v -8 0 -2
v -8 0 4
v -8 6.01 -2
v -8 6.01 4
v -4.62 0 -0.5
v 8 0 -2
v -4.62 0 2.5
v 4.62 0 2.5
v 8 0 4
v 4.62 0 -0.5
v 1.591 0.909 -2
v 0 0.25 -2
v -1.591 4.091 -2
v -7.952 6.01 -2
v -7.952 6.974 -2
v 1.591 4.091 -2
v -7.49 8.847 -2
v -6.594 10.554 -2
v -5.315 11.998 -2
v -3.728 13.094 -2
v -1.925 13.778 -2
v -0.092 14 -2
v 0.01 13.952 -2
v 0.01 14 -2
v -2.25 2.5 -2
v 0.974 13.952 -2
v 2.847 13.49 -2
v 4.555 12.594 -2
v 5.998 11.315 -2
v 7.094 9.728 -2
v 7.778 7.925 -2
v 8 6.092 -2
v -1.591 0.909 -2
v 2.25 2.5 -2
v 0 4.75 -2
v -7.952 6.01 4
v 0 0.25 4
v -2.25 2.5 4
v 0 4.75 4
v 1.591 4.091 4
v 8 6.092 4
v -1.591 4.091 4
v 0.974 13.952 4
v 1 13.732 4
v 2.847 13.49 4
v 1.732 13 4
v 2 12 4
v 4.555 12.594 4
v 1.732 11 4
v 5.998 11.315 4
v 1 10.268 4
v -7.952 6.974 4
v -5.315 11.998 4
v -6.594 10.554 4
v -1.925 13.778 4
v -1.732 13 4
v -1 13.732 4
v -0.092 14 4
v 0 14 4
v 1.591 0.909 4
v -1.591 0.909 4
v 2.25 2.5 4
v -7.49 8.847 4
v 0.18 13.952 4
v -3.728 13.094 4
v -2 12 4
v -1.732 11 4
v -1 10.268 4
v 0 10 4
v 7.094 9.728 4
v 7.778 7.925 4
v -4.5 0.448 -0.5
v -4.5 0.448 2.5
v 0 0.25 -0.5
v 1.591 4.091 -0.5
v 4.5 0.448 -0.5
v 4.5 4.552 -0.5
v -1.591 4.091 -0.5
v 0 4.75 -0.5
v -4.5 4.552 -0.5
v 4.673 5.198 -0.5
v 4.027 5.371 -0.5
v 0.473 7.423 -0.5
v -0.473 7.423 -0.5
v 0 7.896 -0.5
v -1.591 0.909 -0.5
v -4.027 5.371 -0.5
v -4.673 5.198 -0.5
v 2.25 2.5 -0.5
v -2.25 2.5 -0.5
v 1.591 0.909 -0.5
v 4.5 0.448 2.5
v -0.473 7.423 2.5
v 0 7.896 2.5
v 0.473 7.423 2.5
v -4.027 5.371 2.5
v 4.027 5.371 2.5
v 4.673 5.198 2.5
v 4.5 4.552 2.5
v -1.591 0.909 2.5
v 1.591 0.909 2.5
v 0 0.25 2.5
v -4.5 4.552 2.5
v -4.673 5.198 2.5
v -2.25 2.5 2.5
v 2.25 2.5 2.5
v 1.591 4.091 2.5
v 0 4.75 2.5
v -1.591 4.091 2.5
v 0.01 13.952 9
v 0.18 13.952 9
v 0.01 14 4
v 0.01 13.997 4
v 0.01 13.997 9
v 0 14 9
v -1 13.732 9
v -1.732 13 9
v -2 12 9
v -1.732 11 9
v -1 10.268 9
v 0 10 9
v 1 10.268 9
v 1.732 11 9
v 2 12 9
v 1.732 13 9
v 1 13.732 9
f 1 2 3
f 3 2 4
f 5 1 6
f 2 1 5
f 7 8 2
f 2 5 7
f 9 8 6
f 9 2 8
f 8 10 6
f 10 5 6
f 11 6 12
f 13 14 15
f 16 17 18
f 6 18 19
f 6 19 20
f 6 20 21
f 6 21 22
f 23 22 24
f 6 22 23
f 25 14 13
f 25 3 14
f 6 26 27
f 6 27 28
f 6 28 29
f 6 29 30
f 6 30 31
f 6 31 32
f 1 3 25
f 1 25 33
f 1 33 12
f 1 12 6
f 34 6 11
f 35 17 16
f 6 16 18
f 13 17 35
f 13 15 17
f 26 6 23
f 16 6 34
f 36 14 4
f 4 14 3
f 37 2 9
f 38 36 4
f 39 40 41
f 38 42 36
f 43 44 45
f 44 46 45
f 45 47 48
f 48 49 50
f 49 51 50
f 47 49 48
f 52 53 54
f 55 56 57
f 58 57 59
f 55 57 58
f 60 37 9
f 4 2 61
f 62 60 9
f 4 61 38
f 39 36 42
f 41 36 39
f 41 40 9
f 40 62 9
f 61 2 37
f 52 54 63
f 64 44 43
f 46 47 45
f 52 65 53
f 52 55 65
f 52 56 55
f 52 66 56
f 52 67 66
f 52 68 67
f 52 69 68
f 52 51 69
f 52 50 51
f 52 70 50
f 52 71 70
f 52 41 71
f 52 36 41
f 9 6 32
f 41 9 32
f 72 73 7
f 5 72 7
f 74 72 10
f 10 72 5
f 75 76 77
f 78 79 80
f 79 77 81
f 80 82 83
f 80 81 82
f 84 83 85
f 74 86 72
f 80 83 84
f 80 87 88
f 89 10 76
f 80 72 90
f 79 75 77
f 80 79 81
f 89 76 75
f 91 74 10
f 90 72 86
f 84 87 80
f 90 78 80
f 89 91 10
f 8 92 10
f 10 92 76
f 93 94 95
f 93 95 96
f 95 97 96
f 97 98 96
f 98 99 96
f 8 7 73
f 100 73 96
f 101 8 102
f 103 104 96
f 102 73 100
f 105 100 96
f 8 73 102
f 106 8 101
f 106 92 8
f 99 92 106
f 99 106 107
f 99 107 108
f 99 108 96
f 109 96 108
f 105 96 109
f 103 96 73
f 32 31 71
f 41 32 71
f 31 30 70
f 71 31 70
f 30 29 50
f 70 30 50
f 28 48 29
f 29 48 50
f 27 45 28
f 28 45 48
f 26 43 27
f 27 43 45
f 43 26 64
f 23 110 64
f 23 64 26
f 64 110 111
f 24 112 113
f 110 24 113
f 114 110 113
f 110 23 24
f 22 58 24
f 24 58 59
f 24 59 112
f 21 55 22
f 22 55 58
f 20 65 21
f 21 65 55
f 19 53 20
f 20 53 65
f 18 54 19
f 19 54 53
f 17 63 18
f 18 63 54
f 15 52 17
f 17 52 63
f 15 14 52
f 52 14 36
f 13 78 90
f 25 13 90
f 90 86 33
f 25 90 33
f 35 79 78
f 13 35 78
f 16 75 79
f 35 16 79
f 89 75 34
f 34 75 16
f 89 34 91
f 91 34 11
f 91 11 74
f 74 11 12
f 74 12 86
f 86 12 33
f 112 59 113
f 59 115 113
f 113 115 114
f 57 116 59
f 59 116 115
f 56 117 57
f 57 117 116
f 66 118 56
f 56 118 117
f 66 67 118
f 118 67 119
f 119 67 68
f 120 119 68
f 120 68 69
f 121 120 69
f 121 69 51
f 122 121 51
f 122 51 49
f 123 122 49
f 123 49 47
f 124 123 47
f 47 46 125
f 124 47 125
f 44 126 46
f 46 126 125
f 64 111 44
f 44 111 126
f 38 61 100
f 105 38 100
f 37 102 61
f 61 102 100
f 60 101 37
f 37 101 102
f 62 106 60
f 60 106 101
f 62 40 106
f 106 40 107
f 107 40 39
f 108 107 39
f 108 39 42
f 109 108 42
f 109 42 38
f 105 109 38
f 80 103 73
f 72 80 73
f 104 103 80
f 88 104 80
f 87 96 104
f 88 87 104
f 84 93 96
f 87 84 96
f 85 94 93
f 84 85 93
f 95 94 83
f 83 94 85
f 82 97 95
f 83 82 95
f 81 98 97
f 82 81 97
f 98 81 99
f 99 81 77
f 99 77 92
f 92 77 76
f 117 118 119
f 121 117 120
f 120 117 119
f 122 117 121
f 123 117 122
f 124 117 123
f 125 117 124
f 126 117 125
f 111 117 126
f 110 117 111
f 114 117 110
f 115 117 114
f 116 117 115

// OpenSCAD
// file: inc/functions.scad
// PRUSA iteration3
// Functions used in many files
// GNU GPL v3
// Josef Průša <josefprusa@me.com>
// Václav 'ax' Hůla <axtheb@gmail.com>
// Vlnofka <>
// http://www.reprap.org/wiki/Prusa_Mendel
// http://github.com/prusajr/PrusaMendel

module roundcorner(diameter){
	difference(){
		cube(size = [diameter,diameter,99], center = false);
		translate(v = [diameter, diameter, 0]) cylinder(h = 100, r=diameter, center=true);
	}
}
module nut(d,h,horizontal=true){
    cornerdiameter =  (d / 2) / cos (180 / 6);
    cylinder(h = h, r = cornerdiameter, $fn = 6);
    if(horizontal){
        for(i = [1:6]){
            rotate([0,0,60*i]) translate([-cornerdiameter-0.2,0,0]) rotate([0,0,-45]) cube([2,2,h]);
        }
    }
}

// Based on nophead research
module polyhole(d, h, center=false) {
    n = max(round(2 * d),3);
    rotate([0,0,180])
        cylinder(h = h, r = (d / 2) / cos (180 / n), $fn = n);
}

// make it interchangeable between this and cylinder
module cylinder_poly(r, h, center=false){
    polyhole(d=r*2, h=h, center=center);
}

module fillet(radius, height=100, $fn=0) {
    //this creates acutal fillet
    translate([-radius, -radius, -height/2-0.01])
        difference() {
            cube([radius*2, radius*2, height+0.02]);
            cylinder(r=radius, h=height+0.02, $fn=$fn);
        }
}

module cube_fillet(size, radius=-1, vertical=[3,3,3,3], top=[0,0,0,0], bottom=[0,0,0,0], center=false, $fn=0){
    //
    if (center) {
        cube_fillet_inside(size, radius, vertical, top, bottom, $fn);
    } else {
        translate([size[0]/2, size[1]/2, size[2]/2])
            cube_fillet_inside(size, radius, vertical, top, bottom, $fn);
    }
}

module cube_negative_fillet(size, radius=-1, vertical=[3,3,3,3], top=[0,0,0,0], bottom=[0,0,0,0], $fn=0){

    j=[1,0,1,0];

    for (i=[0:3]) {
        if (radius > -1) {
            rotate([0, 0, 90*i]) translate([size[1-j[i]]/2, size[j[i]]/2, 0]) fillet(radius, size[2], $fn=$fn);
        } else {
            rotate([0, 0, 90*i]) translate([size[1-j[i]]/2, size[j[i]]/2, 0]) fillet(vertical[i], size[2], $fn=$fn);
        }
        rotate([90*i, -90, 0]) translate([size[2]/2, size[j[i]]/2, 0 ]) fillet(top[i], size[1-j[i]], $fn=$fn);
        rotate([90*(4-i), 90, 0]) translate([size[2]/2, size[j[i]]/2, 0]) fillet(bottom[i], size[1-j[i]], $fn=$fn);

    }
}

module cube_fillet_inside(size, radius=-1, vertical=[3,3,3,3], top=[0,0,0,0], bottom=[0,0,0,0], $fn=0){
    //makes CENTERED cube with round corners
    // if you give it radius, it will fillet vertical corners.
    //othervise use vertical, top, bottom arrays
    //when viewed from top, it starts in upper right corner (+x,+y quadrant) , goes counterclockwise
    //top/bottom fillet starts in direction of Y axis and goes CCW too


    if (radius == 0) {
        cube(size, center=true);
    } else {
        difference() {
            cube(size, center=true);
            cube_negative_fillet(size, radius, vertical, top, bottom, $fn);
        }
    }
}


module nema17(places=[1,1,1,1], size=15.5, h=10, holes=false, shadow=false, $fn=24){
    for (i=[0:3]) {
        if (places[i] == 1) {
            rotate([0, 0, 90*i]) translate([size, size, 0]) {
                if (holes) {
                    #rotate([0, 0, -90*i])  translate([0,0,-10]) screw(r=1.7, slant=false, head_drop=13, $fn=$fn, h=h+12);
                } else {
                    rotate([0, 0, -90*i]) cylinder(h=h, r=5.5, $fn=$fn);
                }
            }
        }
    }
    if (shadow != false) {
        %translate ([0, 0, shadow+21+3]) cube([42,42,42], center = true);
    //flange
        %translate ([0, 0, shadow+21+3-21-1]) cylinder(r=11,h=2, center = true, $fn=20);
    //shaft
        %translate ([0, 0, shadow+21+3-21-7]) cylinder(r=2.5,h=14, center = true);
    }
}

module screw(h=20, r=2, r_head=3.5, head_drop=0, slant=true, poly=false, $fn=0){
    //makes screw with head
    //for substraction as screw hole
    if (poly) {
        cylinder_poly(h=h, r=r, $fn=$fn);
    } else {
        cylinder(h=h, r=r, $fn=$fn);
    }
    if (slant) {
        translate([0, 0, head_drop-0.01]) cylinder(h=r_head, r2=0, r1=r_head, $fn=$fn);
    }

    if (head_drop > 0) {
        translate([0, 0, -0.01]) cylinder(h=head_drop+0.01, r=r_head, $fn=$fn);
    }
}
module screw_cylinder(r_head=5.25,r=3.25,head_drop=6.2,slant=false){
	screw(r_head=r_head,head_drop=head_drop,r=r, slant=slant);

}

//screw_cylinder();
//cube_fillet([10,20,30], vertical=[3,2,0,0], top=[3,2,0,5], bottom=[3,2,0,5]);
//cube_fillet([10,20,30], radius=2, top=[7,2,7,2]);
// file: inc/metric.scad
// PRUSA iteration3
// Default metric sizes
// GNU GPL v3
// Josef Průša <josefprusa@me.com>
// http://www.reprap.org/wiki/Prusa_Mendel
// http://github.com/prusajr/PrusaMendel

// DONT CHANGE THIS FILE! ALTER VALUES IN CONFIGURATION.SCAD INSTEAD

// RODS

threaded_rod_diameter = 8.7;
threaded_rod_diameter_horizontal = 8.7;
smooth_bar_diameter = 8;
smooth_bar_diameter_horizontal = 8.8;

// Nuts and bolts

m8_diameter = 9;
m8_nut_diameter = 14.1;

m4_diameter = 4.5;
m4_nut_diameter = 9;

m3_diameter = 3.6;
m3_nut_diameter = 5.3;
m3_nut_diameter_horizontal = 6.1;

// Bushing holder

bushing_core_diameter = smooth_bar_diameter;
bushing_material_thickness = 1;

// Motors

motor_shaft = 5.5;
// file: configuration.scad
// PRUSA iteration3
// Configuration file
// GNU GPL v3
// Josef Průša <josefprusa@me.com>
// Václav 'ax' Hůla <axtheb@gmail.com>
// http://www.reprap.org/wiki/Prusa_Mendel
// http://github.com/prusajr/PrusaMendel

// PLEASE SELECT ONE OF THE CONFIGURATIONS BELOW
// BY UN-COMMENTING IT

// Uncomment for metric settings
// METRIC METRIC METRIC METRIC METRIC METRIC METRIC METRIC 

include <inc/metric.scad>;

// Custom settings here, tailor to your supplies and print settings

// Select your belt type ******************************************************

//T2.5
//belt_tooth_distance = 2.5;
//belt_tooth_ratio = 0.5;

//T5 (strongly discouraged)
belt_tooth_distance = 5;
belt_tooth_ratio = 0.75;

//HTD3
//belt_tooth_distance = 3;
//belt_tooth_ratio = 0.75;

//MXL
//belt_tooth_distance = 2.032;
//belt_tooth_ratio = 0.64;

// Choose bearing/bushing configuration ***************************************

//Choose from:

// 0 = Z as lm[e]8uu, X and Y bushings
// 1 = all bushings
// 2 = all bearings [default. Do not change unless you really know what you are doing]
// DO NOT OFFER 0 or 1 VARIANTS FOR SALE. We really mean that. In the long run it hurts everyone.

bearing_choice = 2;

// Bushing version
// 0 = square igus housings. By igus we mean JFM-0810-10 or GFM-0810-10
// 1 = round igus (works better if printed precisely)
// 2 = bronze self-aligning bushings
bushing_type = 0;

//Bearing version
// 0 = default lm8uu
// 1 = lme8uu
bearing_type = 0;

// Select idler bearing size **************************************************

// 0 = 608 [standard skate bearings]
// 1 = 624 [roughly same diameter as pulley, makes belt parallel so its prettier]

idler_bearing = 0;

// Thickness of the XZ plate board
board_thickness = 12;

//Layer height * width over thickness. Used for idler sleeve
single_wall_width = 0.3*2.2;

// END of custom settings


// You are not supposed to change this
board_to_xz_distance = 26;
xaxis_rod_distance = 45;
carriage_l = 74;
carriage_hole_to_side = 5;
carriage_hole_height = 4;

//calculated from settings

idler_size = (idler_bearing == 0) ? 22 : 13;

//use 4.5 for 608, 2.5 for 624
idler_size_inner_r = (idler_bearing == 0) ? 4.5 : 2.5;

idler_width = (idler_bearing == 0) ? 9 : 5;

// CHANGE ONLY THE STUFF YOU KNOW
// IT WILL REPLACE DEFAULT SETTING

// RODS

// threaded_rod_diameter = 0;
// threaded_rod_diameter_horizontal = 0;
// smooth_bar_diameter = 0;
// smooth_bar_diameter_horizontal = 0;

// Nuts and bolts

// m8_diameter = 0;
// m8_nut_diameter = 0;

// m4_diameter = 0;
// m4_nut_diameter = 0;

// m3_diameter = 0;
// m3_nut_diameter = 0;

// Bushing holder

// bushing_core_diameter = smooth_bar_diameter;
// bushing_material_thickness = 0;

///counted stuff
m3_nut_diameter_bigger = ((m3_nut_diameter  / 2) / cos (180 / 6))*2;

// functions
include <inc/functions.scad>


// These constants define the geometry of the complete-printer.scad

//x_smooth_rod_length=325;
//y_smooth_rod_length=405;
//z_smooth_rod_length=235;
bed_x_size=225;
bed_y_size=225;

x_smooth_rod_length=450+board_thickness*2+10; // 492 for 16mm thickness; 484 for 12mm thickness
y_smooth_rod_length=470;
z_smooth_rod_length=405;  
bed_x_size=225;
bed_y_size=225;
// main file
include <configuration.scad>


table_screw_holder();

module table_screw_holder(){
	difference(){
		union(){
			translate([-8,0,-2])cube([16,14,6]);
			translate([0,12,4])cylinder(r=2,h=5,$fn=12);
		}
		translate([0,m4_nut_diameter/2-2,-0.5])rotate([0,0,90])nut(d=m4_nut_diameter,h=3);
		translate([0,m4_nut_diameter/2-2,-4])cylinder(r=m4_diameter/2,h=10);
		translate([8.01,14.01,-3])rotate(180)roundcorner(8);
		translate([-8.01,14.01,-3])rotate(-90)roundcorner(8);
	}

}
